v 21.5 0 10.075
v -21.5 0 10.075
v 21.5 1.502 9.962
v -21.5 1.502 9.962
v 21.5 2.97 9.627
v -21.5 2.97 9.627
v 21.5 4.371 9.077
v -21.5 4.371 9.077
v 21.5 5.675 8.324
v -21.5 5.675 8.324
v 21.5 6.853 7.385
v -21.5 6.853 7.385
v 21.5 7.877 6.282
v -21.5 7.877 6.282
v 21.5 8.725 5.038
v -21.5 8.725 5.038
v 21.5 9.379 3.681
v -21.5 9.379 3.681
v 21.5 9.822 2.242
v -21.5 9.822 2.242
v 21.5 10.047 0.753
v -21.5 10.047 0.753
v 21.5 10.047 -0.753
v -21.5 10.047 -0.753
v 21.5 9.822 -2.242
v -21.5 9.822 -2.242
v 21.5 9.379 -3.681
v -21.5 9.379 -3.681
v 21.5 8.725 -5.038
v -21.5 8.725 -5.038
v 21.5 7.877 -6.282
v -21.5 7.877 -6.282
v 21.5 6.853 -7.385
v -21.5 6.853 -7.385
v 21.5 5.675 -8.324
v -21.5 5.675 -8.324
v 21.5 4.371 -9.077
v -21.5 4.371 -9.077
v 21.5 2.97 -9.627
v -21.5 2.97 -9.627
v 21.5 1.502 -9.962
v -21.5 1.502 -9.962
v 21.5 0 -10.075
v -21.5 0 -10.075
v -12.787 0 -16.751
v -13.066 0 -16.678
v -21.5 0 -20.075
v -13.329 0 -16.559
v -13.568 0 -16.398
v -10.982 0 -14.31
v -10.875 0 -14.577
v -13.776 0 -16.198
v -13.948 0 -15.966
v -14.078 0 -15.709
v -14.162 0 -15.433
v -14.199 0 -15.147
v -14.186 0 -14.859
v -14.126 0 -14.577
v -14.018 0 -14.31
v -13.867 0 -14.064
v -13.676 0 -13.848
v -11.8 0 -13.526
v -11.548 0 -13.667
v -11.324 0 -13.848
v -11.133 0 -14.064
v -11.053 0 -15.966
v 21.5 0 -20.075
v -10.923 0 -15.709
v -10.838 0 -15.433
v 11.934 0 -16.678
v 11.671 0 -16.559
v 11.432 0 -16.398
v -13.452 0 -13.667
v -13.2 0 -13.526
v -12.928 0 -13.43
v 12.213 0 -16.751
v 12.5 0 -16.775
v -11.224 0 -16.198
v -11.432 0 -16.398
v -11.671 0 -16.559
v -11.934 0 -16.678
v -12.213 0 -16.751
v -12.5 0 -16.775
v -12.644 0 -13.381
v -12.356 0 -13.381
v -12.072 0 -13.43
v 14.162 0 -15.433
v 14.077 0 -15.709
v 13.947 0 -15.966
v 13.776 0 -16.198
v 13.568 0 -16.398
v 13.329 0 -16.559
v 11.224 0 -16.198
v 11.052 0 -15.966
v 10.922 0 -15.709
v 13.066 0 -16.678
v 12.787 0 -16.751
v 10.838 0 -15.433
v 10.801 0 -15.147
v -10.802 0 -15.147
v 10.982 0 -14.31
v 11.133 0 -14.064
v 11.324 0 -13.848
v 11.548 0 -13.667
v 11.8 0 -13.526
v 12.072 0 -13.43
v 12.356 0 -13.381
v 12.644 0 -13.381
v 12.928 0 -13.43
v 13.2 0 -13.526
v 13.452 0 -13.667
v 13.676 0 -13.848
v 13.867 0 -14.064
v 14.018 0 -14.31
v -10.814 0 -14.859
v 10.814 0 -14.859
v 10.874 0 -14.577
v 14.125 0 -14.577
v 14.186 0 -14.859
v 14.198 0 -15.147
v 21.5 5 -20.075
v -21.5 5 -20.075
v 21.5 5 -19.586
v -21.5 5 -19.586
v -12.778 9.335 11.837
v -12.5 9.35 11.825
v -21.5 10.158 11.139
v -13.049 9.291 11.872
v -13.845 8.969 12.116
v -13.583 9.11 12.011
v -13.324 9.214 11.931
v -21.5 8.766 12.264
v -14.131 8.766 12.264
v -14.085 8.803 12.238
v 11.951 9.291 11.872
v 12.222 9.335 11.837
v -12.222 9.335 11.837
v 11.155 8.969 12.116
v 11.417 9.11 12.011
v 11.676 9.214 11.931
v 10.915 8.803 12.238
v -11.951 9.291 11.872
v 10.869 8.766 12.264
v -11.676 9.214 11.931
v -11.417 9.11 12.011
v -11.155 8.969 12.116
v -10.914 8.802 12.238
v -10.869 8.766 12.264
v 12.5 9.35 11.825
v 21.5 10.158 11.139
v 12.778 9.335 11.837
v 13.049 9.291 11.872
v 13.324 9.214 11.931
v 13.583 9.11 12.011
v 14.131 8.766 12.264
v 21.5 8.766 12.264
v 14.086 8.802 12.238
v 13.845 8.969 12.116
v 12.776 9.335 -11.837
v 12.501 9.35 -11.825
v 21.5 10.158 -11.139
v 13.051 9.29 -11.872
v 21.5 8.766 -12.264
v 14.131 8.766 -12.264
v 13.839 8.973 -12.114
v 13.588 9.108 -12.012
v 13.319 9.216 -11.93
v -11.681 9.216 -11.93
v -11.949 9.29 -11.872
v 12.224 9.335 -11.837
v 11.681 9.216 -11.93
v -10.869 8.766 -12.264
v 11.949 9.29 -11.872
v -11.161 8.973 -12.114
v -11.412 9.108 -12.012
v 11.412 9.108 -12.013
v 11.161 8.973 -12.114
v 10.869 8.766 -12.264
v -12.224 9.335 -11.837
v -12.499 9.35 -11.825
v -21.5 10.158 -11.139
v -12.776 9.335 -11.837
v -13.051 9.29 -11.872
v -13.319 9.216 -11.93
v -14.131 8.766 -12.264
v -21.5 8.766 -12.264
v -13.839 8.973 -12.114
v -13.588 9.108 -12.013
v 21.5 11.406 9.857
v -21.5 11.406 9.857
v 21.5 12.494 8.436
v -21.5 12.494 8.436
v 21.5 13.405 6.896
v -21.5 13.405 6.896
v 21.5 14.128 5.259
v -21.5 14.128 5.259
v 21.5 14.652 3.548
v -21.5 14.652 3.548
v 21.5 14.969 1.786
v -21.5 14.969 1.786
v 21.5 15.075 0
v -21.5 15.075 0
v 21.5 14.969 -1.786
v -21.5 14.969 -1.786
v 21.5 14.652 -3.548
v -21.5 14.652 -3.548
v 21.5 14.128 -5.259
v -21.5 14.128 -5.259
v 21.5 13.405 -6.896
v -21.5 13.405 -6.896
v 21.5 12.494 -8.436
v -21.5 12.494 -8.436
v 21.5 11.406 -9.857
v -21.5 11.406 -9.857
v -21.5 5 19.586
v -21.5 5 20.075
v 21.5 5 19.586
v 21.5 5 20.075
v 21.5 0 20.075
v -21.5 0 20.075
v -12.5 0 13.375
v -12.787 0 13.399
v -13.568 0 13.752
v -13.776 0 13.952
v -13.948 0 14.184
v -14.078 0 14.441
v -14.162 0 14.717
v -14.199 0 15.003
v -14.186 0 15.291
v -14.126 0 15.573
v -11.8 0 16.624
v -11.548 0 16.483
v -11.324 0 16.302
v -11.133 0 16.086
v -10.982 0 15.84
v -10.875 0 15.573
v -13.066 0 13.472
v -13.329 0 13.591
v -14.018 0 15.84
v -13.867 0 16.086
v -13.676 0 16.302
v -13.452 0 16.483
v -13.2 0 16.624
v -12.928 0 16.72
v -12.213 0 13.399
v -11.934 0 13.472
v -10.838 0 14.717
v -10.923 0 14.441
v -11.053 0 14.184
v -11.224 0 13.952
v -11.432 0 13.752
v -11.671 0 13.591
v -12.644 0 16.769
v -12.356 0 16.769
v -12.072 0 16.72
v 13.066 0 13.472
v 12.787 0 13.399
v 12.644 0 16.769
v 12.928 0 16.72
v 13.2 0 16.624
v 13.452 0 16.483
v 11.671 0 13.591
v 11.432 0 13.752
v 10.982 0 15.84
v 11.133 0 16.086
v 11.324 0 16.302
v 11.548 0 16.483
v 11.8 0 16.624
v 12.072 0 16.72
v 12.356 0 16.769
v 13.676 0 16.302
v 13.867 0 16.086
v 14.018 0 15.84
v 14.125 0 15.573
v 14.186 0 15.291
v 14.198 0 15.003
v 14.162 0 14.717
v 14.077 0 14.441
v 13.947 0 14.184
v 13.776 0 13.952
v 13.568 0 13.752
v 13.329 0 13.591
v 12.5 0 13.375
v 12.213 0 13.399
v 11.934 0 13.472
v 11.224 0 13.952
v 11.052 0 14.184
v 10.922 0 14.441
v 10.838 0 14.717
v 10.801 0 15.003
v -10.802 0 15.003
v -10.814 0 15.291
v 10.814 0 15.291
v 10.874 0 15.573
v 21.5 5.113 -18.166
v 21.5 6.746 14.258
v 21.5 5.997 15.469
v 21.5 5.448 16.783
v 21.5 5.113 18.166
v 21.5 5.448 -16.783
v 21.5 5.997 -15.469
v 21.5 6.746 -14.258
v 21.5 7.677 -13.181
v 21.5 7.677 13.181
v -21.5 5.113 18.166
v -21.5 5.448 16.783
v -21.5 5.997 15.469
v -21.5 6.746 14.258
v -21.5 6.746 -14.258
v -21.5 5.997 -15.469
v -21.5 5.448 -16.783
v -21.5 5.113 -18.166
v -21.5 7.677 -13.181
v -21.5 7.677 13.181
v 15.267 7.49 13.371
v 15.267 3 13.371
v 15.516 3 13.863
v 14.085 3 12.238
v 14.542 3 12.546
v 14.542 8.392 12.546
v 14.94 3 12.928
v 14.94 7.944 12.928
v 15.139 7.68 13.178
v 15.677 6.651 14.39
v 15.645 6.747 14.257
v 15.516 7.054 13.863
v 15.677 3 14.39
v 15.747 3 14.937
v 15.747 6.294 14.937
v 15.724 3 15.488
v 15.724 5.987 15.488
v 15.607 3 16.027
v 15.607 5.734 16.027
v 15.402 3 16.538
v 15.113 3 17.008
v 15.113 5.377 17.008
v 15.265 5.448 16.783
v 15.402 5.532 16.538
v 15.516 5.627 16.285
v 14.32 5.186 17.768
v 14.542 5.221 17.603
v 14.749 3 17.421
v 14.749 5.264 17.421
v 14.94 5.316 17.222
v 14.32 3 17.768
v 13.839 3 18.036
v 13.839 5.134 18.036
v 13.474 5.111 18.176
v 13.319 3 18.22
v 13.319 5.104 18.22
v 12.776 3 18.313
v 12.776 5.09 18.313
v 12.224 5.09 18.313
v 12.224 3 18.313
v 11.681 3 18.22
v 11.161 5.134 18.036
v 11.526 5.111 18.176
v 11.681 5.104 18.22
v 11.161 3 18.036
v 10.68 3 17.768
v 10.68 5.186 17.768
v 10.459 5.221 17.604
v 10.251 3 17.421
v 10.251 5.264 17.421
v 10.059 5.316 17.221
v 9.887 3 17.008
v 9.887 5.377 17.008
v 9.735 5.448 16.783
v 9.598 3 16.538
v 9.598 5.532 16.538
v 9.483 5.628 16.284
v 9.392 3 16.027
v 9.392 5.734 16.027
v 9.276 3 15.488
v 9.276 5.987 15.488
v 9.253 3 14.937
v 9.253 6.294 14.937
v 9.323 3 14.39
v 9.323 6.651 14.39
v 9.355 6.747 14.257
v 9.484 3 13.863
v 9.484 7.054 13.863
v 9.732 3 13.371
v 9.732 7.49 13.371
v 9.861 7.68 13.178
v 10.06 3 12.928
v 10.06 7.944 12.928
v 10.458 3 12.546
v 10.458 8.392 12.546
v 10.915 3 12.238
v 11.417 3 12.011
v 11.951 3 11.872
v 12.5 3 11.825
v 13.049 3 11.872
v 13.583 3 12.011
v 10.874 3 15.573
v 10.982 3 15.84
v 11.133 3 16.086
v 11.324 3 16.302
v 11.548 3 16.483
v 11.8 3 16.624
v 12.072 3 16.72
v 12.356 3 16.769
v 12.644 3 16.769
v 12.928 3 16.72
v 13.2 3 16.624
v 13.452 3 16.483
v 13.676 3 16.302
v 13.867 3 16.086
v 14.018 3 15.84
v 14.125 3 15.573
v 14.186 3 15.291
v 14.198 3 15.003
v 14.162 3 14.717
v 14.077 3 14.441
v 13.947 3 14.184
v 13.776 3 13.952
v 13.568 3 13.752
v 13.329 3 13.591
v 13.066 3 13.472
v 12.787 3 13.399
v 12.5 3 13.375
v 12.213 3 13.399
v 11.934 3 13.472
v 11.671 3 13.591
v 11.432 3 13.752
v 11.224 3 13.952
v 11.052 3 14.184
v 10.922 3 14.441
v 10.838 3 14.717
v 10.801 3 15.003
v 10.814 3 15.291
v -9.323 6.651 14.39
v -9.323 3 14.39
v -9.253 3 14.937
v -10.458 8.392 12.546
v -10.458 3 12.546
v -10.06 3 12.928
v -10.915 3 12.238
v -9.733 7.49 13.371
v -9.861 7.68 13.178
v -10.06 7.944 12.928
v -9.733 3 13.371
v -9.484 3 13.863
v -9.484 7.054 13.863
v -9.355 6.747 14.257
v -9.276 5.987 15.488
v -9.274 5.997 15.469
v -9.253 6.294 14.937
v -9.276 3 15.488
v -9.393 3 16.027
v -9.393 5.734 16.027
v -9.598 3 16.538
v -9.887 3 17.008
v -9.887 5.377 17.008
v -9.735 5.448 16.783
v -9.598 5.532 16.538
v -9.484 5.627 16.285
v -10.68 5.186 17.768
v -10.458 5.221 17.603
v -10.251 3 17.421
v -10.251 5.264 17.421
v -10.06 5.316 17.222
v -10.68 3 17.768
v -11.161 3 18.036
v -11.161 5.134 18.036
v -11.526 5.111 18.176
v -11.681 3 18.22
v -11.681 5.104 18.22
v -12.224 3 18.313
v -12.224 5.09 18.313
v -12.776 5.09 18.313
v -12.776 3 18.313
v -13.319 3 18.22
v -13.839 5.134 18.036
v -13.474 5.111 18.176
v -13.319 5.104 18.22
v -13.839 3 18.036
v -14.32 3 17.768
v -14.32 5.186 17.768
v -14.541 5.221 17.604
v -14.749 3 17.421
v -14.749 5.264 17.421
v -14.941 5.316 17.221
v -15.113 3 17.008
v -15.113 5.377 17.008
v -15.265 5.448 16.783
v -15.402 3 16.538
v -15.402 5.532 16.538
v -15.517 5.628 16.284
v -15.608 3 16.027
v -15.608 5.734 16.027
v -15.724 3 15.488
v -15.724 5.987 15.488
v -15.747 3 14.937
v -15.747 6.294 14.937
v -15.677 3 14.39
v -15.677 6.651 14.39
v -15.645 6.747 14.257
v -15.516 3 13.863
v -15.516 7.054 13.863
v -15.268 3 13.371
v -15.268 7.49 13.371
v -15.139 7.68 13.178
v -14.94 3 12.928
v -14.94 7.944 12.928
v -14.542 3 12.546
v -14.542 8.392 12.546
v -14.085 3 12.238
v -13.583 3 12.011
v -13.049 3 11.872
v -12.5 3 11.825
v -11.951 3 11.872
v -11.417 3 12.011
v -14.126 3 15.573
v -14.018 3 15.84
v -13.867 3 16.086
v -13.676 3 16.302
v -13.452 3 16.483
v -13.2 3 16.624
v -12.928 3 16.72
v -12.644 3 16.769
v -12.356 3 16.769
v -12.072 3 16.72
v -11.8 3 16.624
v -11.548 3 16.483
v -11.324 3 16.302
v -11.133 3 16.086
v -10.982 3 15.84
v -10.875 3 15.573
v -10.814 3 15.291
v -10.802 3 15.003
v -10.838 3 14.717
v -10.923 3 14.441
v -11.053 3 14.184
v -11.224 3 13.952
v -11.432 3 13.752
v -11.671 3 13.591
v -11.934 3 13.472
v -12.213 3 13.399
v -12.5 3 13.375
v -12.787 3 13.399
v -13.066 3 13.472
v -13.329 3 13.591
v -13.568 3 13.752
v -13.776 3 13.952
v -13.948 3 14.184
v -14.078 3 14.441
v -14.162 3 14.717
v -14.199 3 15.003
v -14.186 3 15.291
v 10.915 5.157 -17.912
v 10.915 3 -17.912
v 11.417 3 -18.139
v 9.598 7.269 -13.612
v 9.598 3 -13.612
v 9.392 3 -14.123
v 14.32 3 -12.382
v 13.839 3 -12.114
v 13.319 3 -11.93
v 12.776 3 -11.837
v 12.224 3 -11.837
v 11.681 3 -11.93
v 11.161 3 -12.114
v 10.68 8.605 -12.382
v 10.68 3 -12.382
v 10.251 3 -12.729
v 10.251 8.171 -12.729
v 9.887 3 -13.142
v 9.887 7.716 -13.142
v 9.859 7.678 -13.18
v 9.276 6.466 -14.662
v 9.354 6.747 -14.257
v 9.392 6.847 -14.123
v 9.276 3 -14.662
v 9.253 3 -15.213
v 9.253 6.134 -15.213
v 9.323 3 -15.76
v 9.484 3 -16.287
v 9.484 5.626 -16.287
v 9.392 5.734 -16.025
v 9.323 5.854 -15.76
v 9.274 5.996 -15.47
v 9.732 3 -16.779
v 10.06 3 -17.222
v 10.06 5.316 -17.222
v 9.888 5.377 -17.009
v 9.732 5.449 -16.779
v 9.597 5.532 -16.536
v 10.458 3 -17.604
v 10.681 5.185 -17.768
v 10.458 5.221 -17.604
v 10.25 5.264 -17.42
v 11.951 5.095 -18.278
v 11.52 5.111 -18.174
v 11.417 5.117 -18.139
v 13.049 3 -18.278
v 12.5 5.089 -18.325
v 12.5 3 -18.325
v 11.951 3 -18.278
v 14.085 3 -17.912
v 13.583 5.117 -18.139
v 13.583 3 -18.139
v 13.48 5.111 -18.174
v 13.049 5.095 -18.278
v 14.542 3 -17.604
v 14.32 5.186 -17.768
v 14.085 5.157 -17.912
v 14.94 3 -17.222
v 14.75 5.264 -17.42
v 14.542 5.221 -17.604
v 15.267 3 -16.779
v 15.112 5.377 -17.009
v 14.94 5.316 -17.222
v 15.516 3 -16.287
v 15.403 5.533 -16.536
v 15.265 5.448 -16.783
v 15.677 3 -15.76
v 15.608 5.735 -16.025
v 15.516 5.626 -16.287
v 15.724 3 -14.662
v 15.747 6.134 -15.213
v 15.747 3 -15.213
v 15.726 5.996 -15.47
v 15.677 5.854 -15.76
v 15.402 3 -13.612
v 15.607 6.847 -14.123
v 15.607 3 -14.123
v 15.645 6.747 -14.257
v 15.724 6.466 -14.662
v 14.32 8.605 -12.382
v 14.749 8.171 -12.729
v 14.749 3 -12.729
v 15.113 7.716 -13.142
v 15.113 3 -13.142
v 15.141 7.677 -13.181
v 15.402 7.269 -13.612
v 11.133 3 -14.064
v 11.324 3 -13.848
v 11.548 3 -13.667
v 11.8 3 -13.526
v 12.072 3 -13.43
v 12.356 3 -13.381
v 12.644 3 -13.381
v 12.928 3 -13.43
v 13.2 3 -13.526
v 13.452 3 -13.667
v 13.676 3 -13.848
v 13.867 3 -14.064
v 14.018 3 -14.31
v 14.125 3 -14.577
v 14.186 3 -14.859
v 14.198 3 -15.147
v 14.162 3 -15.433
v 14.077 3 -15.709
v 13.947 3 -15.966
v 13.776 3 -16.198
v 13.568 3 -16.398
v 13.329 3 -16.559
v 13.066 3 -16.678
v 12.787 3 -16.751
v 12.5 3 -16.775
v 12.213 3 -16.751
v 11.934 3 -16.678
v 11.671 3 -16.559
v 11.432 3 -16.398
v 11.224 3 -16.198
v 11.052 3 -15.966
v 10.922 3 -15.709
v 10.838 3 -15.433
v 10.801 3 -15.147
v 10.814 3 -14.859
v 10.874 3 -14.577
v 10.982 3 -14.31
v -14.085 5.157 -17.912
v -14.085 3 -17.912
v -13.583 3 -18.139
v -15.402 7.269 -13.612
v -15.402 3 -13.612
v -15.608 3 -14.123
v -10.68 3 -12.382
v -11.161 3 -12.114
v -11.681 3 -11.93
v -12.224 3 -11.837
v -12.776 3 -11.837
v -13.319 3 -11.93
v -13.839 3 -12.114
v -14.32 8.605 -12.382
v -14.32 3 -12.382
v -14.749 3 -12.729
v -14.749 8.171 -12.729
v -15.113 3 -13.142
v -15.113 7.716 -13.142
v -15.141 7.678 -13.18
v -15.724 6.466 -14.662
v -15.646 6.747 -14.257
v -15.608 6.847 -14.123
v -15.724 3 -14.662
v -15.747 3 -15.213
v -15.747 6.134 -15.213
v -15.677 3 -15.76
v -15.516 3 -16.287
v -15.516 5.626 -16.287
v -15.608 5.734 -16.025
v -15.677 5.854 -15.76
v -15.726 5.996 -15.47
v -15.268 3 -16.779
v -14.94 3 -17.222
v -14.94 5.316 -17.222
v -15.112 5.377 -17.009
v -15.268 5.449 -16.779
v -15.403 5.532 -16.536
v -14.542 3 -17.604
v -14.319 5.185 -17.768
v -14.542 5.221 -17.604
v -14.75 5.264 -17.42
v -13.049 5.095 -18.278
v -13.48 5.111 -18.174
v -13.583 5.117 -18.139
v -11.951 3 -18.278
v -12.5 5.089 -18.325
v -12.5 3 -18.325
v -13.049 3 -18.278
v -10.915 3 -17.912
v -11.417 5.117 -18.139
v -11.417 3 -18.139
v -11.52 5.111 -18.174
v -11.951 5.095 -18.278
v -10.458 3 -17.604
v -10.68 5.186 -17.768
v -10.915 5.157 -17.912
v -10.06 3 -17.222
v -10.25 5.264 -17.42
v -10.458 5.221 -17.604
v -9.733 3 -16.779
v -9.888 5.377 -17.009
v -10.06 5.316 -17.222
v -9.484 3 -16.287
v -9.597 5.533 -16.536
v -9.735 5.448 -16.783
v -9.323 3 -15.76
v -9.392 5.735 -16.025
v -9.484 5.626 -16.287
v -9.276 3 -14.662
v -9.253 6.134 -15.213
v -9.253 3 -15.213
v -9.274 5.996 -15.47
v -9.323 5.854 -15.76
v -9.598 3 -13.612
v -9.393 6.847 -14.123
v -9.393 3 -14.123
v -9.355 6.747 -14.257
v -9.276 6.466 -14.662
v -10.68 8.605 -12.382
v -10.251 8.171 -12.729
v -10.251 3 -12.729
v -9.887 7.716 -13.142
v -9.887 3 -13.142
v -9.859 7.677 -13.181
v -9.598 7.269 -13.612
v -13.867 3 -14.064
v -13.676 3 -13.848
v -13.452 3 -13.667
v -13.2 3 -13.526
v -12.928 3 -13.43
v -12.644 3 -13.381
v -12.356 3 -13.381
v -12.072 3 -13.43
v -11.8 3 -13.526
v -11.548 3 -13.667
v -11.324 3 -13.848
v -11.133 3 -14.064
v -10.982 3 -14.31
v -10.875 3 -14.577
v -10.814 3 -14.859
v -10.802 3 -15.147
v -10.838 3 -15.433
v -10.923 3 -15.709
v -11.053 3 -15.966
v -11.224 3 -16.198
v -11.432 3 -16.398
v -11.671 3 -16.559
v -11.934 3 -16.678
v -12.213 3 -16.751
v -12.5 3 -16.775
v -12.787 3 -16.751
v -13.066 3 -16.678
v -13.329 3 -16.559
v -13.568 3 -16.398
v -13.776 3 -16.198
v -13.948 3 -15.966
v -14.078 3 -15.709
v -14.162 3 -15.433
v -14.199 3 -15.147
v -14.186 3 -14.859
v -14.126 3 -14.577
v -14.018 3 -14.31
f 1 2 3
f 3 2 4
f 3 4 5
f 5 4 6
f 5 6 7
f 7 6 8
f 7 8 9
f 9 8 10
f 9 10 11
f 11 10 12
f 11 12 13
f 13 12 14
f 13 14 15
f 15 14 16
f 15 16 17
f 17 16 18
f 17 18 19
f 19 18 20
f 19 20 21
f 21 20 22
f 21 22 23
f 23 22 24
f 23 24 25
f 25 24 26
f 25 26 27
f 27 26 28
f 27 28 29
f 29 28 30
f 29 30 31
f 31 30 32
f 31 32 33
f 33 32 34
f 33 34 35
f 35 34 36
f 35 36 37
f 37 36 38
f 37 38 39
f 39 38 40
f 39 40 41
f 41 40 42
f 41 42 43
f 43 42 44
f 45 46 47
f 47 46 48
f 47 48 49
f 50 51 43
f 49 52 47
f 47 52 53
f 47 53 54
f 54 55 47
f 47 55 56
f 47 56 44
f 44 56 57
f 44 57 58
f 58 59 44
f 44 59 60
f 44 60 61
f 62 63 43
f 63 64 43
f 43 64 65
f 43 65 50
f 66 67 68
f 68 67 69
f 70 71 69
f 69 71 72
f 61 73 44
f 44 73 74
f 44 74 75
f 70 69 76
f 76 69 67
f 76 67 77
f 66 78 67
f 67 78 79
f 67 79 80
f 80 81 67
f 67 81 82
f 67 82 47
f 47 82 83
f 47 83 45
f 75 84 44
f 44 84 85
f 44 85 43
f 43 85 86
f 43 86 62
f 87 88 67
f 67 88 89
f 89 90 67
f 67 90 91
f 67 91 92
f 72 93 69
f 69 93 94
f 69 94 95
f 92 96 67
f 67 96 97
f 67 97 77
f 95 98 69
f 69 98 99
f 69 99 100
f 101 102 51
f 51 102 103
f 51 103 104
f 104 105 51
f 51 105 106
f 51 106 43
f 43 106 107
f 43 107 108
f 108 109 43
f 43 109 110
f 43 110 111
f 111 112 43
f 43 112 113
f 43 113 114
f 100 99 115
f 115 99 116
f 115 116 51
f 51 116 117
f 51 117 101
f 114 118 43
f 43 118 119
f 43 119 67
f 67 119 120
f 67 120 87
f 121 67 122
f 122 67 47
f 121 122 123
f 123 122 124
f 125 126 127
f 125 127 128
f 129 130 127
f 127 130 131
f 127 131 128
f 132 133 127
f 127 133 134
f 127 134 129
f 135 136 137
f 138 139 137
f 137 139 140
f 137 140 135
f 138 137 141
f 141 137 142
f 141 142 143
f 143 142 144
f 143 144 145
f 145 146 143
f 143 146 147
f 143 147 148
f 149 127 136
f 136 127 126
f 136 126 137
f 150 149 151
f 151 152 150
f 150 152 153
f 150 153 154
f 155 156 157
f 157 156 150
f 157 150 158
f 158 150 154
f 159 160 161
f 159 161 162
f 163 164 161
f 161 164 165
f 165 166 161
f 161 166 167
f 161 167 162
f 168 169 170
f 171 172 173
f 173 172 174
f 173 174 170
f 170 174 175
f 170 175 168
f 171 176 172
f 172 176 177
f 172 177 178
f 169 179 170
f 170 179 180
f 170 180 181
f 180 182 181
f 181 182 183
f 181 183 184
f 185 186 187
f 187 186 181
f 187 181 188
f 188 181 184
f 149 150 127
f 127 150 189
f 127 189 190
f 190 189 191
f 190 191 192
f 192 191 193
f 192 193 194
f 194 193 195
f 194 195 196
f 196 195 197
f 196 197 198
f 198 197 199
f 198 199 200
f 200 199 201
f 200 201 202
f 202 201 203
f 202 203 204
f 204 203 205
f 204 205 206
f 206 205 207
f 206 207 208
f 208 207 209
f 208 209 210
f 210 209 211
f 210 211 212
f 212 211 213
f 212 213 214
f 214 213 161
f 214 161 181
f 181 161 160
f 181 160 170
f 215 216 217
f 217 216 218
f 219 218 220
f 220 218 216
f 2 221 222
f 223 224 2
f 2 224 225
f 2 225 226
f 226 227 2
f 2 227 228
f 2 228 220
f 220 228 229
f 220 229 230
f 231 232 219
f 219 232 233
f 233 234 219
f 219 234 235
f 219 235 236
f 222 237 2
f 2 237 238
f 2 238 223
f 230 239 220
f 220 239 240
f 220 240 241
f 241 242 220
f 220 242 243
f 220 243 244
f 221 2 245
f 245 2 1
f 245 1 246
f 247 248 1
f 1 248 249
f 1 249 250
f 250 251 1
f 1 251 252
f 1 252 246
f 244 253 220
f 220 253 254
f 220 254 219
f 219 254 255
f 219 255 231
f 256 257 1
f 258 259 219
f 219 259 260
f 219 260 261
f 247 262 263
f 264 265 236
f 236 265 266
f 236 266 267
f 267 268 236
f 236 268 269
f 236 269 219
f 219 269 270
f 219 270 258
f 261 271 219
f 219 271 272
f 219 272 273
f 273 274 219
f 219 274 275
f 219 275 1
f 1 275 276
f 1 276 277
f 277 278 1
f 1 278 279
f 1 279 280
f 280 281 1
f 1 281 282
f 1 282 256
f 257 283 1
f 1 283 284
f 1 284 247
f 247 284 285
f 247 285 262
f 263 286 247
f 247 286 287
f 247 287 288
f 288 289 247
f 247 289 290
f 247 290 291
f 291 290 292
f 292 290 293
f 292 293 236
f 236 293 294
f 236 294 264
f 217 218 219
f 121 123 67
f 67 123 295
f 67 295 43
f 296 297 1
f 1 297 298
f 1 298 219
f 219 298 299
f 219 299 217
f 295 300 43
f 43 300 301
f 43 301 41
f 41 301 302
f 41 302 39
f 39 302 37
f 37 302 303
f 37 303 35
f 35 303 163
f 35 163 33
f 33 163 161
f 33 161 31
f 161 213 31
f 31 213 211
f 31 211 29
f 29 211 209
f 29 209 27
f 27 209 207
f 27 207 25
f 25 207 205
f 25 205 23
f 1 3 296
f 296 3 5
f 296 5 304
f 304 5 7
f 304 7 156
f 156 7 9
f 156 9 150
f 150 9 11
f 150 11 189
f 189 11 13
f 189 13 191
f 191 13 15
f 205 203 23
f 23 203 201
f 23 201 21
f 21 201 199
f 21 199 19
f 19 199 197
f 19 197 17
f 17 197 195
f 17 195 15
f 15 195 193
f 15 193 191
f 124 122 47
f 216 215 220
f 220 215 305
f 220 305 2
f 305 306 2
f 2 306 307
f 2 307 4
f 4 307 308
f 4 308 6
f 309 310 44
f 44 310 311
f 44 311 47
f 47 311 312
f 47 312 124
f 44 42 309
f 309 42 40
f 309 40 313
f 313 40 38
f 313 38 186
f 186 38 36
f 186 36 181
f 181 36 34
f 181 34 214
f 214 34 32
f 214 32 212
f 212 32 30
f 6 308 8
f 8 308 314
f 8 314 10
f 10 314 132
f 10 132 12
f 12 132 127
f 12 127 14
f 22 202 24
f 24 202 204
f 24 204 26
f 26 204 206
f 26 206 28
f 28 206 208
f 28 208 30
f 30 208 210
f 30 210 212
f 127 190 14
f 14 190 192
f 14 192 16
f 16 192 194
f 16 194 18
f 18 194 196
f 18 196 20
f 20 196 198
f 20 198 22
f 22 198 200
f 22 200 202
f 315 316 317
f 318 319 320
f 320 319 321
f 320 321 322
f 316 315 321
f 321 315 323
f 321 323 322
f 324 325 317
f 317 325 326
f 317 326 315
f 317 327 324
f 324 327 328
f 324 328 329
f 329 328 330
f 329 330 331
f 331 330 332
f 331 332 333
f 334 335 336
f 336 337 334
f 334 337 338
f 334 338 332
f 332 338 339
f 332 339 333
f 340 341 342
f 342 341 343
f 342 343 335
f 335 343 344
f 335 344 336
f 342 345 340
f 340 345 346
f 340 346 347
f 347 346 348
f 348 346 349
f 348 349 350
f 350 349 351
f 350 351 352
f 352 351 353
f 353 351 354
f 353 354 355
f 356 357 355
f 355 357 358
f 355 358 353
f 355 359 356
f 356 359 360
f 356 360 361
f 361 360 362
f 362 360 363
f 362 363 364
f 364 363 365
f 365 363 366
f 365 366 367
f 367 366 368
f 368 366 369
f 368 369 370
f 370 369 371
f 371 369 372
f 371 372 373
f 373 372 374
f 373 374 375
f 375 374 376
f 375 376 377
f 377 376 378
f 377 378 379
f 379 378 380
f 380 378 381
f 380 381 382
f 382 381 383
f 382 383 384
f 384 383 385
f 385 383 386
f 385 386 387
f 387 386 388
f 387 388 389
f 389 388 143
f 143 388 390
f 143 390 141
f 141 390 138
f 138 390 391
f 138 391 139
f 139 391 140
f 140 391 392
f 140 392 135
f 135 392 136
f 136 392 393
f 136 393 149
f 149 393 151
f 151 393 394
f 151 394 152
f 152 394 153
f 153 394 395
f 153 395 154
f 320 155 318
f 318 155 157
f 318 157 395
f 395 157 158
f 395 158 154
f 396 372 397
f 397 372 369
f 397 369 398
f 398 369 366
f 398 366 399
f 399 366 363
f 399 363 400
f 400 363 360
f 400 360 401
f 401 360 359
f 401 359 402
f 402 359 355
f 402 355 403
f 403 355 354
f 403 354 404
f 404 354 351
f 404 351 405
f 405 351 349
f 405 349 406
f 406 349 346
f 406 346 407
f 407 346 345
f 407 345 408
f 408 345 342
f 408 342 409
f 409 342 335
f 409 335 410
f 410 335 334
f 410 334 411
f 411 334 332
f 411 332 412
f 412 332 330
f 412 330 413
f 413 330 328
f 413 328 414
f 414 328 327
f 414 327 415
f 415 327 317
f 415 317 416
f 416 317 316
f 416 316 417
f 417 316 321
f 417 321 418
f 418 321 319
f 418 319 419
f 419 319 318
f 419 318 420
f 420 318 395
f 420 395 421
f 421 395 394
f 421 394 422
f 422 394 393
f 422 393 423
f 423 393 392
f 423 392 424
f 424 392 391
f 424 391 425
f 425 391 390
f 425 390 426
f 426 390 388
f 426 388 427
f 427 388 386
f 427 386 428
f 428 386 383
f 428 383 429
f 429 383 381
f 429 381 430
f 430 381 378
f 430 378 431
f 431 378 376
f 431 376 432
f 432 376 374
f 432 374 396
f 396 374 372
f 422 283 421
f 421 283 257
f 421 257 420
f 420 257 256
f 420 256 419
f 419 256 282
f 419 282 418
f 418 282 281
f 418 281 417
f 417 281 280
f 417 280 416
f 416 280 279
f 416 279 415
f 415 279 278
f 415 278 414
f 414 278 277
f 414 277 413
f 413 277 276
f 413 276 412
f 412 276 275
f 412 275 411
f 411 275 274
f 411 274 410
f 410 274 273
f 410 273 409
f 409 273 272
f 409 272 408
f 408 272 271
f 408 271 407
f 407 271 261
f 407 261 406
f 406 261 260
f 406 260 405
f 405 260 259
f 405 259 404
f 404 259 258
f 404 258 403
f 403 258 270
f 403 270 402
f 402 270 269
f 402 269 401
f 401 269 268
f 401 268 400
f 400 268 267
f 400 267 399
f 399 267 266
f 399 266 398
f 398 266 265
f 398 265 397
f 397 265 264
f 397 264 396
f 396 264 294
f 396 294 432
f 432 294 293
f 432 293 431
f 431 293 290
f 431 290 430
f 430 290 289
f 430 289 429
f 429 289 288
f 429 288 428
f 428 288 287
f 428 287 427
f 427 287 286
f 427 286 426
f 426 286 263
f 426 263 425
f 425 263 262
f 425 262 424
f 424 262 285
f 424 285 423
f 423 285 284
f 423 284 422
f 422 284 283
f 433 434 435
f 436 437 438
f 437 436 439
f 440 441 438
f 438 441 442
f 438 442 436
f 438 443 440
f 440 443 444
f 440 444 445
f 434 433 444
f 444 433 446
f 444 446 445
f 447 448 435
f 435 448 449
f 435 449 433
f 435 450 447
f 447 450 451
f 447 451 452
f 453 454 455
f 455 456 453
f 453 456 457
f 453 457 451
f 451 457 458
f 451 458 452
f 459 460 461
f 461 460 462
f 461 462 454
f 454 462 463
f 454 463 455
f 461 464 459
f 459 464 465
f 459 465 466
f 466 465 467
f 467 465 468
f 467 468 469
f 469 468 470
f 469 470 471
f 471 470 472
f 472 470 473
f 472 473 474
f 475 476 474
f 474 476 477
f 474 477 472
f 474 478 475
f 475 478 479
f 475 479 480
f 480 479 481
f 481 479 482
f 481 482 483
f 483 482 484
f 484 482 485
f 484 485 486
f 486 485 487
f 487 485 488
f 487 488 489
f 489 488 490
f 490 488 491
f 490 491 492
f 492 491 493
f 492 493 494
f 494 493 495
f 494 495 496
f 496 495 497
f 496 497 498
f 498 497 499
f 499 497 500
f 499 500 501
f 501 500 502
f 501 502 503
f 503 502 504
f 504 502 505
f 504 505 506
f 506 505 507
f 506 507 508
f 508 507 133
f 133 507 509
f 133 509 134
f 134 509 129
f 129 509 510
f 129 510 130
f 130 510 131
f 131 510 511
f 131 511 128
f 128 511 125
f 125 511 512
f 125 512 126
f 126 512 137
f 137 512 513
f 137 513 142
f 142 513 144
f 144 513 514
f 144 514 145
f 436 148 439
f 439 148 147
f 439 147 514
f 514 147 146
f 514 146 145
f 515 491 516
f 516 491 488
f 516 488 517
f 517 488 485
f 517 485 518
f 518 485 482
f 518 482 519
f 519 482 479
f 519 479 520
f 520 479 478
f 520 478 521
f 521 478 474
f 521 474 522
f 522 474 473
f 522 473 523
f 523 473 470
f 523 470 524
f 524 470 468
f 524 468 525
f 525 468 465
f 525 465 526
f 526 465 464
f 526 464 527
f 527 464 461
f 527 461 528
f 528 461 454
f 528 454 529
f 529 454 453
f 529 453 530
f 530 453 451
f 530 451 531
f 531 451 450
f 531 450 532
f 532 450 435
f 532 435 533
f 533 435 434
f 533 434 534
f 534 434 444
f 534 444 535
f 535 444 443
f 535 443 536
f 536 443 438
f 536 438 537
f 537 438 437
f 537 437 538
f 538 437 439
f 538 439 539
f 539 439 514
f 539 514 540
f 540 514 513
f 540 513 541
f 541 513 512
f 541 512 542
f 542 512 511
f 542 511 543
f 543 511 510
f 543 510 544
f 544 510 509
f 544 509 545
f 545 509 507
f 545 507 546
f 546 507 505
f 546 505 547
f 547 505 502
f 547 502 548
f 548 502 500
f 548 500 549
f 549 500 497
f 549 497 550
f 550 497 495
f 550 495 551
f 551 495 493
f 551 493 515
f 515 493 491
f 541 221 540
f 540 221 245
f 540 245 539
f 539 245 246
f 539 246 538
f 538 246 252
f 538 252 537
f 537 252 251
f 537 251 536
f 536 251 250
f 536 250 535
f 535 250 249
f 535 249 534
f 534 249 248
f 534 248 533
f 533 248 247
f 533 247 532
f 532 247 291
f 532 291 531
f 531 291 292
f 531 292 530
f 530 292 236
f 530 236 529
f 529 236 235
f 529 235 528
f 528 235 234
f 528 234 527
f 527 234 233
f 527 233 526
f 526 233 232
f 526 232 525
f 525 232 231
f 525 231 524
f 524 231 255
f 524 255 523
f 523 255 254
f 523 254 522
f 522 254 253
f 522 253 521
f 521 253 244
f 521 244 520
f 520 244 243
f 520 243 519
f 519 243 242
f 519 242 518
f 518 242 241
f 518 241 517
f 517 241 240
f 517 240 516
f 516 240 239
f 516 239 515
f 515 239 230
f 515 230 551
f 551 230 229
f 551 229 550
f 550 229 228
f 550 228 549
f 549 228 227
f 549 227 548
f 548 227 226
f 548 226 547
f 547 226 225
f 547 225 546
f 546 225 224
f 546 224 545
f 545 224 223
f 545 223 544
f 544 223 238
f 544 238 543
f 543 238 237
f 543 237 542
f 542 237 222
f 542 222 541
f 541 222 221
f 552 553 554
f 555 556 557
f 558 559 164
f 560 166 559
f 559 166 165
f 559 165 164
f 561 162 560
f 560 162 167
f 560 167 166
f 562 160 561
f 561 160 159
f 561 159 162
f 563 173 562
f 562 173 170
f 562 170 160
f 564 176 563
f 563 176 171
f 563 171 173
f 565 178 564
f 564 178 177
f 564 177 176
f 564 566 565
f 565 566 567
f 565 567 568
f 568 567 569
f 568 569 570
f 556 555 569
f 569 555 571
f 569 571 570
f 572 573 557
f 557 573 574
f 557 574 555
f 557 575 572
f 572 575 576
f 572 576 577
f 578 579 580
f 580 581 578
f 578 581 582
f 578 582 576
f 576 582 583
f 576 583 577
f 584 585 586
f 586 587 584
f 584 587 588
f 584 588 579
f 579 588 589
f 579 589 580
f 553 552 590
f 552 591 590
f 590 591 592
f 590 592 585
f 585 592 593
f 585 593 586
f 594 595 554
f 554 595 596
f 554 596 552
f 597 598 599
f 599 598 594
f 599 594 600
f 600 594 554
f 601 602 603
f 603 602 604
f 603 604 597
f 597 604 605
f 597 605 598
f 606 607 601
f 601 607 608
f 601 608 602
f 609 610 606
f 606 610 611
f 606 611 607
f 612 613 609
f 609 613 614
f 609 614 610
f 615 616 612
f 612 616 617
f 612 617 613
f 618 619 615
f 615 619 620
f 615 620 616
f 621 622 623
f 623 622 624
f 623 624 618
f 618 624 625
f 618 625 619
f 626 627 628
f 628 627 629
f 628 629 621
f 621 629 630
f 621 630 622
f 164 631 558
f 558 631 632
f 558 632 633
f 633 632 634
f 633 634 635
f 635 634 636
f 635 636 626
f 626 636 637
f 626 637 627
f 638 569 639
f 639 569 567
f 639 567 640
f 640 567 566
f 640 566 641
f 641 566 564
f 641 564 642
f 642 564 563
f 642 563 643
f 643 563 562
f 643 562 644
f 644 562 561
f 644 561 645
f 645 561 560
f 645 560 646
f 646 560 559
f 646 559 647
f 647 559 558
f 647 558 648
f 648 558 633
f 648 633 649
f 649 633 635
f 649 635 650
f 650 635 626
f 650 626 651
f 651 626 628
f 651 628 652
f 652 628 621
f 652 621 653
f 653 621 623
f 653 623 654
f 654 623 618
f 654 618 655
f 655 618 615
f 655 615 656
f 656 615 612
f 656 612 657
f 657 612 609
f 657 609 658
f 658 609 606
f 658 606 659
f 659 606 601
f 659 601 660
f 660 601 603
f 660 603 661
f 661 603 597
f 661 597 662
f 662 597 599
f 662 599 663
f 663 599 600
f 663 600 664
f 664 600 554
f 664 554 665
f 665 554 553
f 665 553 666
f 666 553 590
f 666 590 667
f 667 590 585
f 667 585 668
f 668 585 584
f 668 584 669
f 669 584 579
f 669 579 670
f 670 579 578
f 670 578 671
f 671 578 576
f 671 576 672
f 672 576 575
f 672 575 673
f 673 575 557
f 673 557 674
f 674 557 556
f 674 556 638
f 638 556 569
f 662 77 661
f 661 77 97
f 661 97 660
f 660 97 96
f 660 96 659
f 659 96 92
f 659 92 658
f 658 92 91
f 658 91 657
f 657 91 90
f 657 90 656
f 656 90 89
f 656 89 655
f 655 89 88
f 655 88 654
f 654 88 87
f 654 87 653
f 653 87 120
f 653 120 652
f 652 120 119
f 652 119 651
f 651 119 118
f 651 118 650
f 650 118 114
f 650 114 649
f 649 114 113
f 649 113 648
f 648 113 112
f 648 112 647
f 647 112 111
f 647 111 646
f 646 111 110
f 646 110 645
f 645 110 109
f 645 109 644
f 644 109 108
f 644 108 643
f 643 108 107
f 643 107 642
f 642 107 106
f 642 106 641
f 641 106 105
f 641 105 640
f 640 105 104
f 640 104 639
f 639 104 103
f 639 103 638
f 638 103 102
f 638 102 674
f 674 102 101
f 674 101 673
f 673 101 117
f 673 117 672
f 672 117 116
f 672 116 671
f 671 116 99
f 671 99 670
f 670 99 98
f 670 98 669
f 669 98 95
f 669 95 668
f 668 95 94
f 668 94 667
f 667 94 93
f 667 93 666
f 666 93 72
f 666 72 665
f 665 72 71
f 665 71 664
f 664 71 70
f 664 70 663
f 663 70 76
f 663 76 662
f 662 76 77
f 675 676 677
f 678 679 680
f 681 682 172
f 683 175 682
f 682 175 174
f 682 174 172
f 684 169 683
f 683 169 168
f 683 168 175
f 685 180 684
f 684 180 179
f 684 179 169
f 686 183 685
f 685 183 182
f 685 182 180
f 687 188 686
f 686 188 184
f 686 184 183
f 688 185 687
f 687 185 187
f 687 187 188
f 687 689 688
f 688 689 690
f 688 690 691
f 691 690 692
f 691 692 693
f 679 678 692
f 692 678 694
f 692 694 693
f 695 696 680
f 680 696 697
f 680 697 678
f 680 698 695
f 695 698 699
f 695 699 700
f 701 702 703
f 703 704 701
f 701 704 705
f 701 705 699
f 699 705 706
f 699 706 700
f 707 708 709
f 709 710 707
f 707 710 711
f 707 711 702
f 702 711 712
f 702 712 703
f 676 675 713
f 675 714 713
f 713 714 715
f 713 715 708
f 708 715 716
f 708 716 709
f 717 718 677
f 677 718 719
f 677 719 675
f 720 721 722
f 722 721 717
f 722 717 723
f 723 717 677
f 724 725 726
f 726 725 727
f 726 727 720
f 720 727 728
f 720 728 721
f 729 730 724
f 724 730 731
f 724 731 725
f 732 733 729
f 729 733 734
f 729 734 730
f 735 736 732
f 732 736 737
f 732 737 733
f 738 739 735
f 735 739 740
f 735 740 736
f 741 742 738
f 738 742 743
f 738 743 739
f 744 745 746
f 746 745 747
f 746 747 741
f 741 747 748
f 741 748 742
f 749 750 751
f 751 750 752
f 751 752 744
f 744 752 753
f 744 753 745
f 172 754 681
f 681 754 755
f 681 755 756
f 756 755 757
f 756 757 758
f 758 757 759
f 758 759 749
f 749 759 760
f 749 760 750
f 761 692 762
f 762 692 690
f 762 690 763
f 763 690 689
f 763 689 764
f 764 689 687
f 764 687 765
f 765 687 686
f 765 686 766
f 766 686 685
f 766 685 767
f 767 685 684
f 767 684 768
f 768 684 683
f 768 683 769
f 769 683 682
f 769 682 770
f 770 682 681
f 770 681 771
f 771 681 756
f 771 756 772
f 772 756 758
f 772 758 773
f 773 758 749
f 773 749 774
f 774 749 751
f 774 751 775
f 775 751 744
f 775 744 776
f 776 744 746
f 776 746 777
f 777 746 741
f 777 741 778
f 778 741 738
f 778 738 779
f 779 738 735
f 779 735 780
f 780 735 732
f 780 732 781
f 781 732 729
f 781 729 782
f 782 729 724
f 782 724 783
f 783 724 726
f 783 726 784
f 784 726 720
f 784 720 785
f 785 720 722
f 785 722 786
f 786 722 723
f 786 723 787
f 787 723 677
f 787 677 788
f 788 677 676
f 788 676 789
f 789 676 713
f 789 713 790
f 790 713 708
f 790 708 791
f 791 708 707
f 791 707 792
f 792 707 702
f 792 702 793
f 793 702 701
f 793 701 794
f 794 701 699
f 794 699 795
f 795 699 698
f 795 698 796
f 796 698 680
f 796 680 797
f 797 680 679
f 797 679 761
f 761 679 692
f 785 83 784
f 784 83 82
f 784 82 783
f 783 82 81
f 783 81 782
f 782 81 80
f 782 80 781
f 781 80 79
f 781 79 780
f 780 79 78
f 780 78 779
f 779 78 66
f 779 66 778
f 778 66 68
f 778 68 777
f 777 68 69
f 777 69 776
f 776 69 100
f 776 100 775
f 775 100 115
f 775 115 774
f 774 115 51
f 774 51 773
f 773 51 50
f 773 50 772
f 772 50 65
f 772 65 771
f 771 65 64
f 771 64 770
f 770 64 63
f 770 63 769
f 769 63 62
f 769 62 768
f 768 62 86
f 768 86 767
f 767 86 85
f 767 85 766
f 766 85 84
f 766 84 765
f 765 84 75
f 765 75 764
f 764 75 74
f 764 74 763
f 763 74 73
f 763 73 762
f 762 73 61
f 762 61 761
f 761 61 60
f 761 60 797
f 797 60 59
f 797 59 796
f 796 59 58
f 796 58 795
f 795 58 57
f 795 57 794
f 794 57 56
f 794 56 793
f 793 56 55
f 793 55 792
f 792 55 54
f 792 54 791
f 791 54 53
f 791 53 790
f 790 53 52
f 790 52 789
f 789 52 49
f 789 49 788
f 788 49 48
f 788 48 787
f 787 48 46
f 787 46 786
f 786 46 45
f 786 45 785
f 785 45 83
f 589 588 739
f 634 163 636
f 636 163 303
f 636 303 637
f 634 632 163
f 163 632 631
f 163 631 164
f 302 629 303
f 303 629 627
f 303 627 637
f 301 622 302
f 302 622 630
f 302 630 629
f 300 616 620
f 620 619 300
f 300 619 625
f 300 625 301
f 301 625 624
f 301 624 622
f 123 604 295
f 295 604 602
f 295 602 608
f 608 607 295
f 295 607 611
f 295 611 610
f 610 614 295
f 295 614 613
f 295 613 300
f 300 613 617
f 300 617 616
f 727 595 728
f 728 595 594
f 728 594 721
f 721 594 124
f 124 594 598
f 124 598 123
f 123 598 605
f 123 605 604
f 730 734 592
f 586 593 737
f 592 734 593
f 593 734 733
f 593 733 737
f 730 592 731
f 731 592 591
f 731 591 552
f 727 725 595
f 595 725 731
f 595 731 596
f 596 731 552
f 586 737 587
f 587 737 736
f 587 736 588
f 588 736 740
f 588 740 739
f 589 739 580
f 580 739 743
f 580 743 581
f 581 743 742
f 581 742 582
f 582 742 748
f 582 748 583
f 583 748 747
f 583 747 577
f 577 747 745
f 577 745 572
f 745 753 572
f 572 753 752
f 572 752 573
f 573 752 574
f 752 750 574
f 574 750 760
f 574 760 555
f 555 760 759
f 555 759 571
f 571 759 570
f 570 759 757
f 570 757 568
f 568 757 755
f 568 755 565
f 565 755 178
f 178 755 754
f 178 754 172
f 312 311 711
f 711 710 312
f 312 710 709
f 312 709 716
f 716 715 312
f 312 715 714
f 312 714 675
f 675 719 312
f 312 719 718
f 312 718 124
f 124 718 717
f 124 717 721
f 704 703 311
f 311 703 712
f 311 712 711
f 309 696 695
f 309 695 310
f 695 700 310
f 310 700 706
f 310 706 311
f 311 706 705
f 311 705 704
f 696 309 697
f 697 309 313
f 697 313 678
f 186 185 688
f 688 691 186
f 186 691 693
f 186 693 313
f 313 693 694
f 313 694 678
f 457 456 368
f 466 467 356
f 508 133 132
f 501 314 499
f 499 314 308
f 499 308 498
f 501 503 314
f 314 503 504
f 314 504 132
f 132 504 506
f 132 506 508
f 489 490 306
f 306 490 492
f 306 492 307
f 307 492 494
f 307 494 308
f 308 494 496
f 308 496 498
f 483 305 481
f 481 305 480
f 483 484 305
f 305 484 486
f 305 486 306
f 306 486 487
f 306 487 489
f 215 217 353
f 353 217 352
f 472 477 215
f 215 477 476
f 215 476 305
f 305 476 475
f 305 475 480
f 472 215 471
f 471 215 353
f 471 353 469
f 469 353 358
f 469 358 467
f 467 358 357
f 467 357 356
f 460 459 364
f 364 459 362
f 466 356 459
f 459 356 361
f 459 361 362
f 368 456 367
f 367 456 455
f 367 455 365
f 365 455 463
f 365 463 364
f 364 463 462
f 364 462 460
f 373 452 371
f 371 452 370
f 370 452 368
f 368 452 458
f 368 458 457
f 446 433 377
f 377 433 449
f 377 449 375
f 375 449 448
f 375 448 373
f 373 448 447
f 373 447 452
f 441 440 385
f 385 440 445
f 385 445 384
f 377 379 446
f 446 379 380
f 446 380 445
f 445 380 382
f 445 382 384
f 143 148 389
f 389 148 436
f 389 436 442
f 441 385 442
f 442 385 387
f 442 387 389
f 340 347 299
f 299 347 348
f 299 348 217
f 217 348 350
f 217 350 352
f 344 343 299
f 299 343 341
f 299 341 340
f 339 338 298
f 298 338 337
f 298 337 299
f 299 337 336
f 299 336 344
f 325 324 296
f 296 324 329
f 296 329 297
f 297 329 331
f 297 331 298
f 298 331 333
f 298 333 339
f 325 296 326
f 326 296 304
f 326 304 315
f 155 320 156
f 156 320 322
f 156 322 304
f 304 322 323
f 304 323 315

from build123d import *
from build123d.topology import SkipClean

# Parameters (mm, degrees)
BOSS_EXTRUDE1_DEPTH           = 21.5
CBORE_FOR_M3_SHCS1_AT_2_COUNT = 2
CBORE_FOR_M3_SHCS1_AT_2_PITCH = 25
FILLET1_START                 = -21.5
FILLET1_DEPTH                 = 43
FILLET1_START_2               = 5
FILLET1_2_OUTLINE_R           = 3.25
FILLET1_2_DEPTH               = 4.350124689


with BuildPart() as part:
    # Sketch1 → Boss-Extrude1 (new, symmetric)
    with BuildSketch(Plane(origin=(0, 0, 0), x_dir=(0, 0, -1), z_dir=(1, 0, 0))):
        with BuildLine():
            Line((-10.075, 0), (-20.075, 0))
            Line((-20.075, 0), (-20.075, 5))
            Line((-20.075, 5), (-14.221660416, 5))
            ThreePointArc((-14.221660416, 5), (0, 15.075), (14.221660416, 5))
            Line((14.221660416, 5), (20.075, 5))
            Line((20.075, 5), (20.075, 0))
            Line((20.075, 0), (10.075, 0))
            ThreePointArc((10.075, 0), (0, 10.075), (-10.075, 0))
        make_face()
    extrude(amount=BOSS_EXTRUDE1_DEPTH, both=True)

    # Sketch4 → CBORE for M3 SHCS1 (revolve, cut)
    with BuildSketch(Plane(origin=(12.5, 0, 15.075), x_dir=(0, 0, -1), z_dir=(1, 0, 0))):
        Polygon((0, 0), (0, 15.075), (3.25, 15.075), (3.25, 3), (1.7, 3), (1.7, 0), align=None)
    cbore_for_m3_shcs1 = revolve(axis=Axis((12.5, -6.35, 15.075), (0, 1, 0)), mode=Mode.SUBTRACT)

    # CBORE for M3 SHCS1 at 2: CBORE for M3 SHCS1 ×2
    with Locations(*[(-i * CBORE_FOR_M3_SHCS1_AT_2_PITCH, 0, 0) for i in range(1, CBORE_FOR_M3_SHCS1_AT_2_COUNT)]):
        add(cbore_for_m3_shcs1, mode=Mode.SUBTRACT)

    # Mirror1: CBORE for M3 SHCS1 across plane
    add(cbore_for_m3_shcs1.mirror(Plane.XY), mode=Mode.SUBTRACT)

    # Mirror1 copy 1 sketch → Mirror1 copy 1 (revolve, cut)
    with BuildSketch(Plane(origin=(-12.5, 0, -15.075), x_dir=(0, 0, 1), z_dir=(1, 0, 0))):
        Polygon((0, 0), (0, -15.075), (3.25, -15.075), (3.25, -3), (1.7, -3), (1.7, 0), align=None)
    revolve(axis=Axis((-12.5, -6.35, -15.075), (0, -1, 0)), mode=Mode.SUBTRACT)

    # Fillet1: read off the stored shape, not the designer's step
    # Fillet1 outline → Fillet1 (add)
    with BuildSketch(Plane.YZ.offset(FILLET1_START)):
        with BuildLine():
            Line((5, -14.221660416), (5, -19.585852675))
            ThreePointArc((5, -19.585852675), (5.996788028, -15.468985161), (8.76635514, -12.264038591))
            ThreePointArc((8.76635514, -12.264038591), (6.952424344, -13.376076433), (5, -14.221660416))
        make_face()
        with BuildLine():
            ThreePointArc((5, 14.221660416), (6.952424344, 13.376076433), (8.76635514, 12.264038591))
            ThreePointArc((8.76635514, 12.264038591), (5.996788028, 15.468985161), (5, 19.585852675))
            Line((5, 19.585852675), (5, 14.221660416))
        make_face()
    extrude(amount=FILLET1_DEPTH)

    # Fillet1 2 outline → Fillet1 2 (cut)
    with SkipClean():  # the faces are left unmerged after this step: merging them gives an invalid solid
        with BuildSketch(Plane(origin=(0, 0, 0), x_dir=(1, 0, 0), z_dir=(0, 1, 0)).offset(FILLET1_START_2)):
            with Locations((12.5, 15.075)):
                Circle(FILLET1_2_OUTLINE_R)
            with Locations((-12.5, 15.075)):
                Circle(FILLET1_2_OUTLINE_R)
            with Locations((12.5, -15.075)):
                Circle(FILLET1_2_OUTLINE_R)
            with Locations((-12.5, -15.075)):
                Circle(FILLET1_2_OUTLINE_R)
        extrude(amount=FILLET1_2_DEPTH, mode=Mode.SUBTRACT)


solid = part.part
